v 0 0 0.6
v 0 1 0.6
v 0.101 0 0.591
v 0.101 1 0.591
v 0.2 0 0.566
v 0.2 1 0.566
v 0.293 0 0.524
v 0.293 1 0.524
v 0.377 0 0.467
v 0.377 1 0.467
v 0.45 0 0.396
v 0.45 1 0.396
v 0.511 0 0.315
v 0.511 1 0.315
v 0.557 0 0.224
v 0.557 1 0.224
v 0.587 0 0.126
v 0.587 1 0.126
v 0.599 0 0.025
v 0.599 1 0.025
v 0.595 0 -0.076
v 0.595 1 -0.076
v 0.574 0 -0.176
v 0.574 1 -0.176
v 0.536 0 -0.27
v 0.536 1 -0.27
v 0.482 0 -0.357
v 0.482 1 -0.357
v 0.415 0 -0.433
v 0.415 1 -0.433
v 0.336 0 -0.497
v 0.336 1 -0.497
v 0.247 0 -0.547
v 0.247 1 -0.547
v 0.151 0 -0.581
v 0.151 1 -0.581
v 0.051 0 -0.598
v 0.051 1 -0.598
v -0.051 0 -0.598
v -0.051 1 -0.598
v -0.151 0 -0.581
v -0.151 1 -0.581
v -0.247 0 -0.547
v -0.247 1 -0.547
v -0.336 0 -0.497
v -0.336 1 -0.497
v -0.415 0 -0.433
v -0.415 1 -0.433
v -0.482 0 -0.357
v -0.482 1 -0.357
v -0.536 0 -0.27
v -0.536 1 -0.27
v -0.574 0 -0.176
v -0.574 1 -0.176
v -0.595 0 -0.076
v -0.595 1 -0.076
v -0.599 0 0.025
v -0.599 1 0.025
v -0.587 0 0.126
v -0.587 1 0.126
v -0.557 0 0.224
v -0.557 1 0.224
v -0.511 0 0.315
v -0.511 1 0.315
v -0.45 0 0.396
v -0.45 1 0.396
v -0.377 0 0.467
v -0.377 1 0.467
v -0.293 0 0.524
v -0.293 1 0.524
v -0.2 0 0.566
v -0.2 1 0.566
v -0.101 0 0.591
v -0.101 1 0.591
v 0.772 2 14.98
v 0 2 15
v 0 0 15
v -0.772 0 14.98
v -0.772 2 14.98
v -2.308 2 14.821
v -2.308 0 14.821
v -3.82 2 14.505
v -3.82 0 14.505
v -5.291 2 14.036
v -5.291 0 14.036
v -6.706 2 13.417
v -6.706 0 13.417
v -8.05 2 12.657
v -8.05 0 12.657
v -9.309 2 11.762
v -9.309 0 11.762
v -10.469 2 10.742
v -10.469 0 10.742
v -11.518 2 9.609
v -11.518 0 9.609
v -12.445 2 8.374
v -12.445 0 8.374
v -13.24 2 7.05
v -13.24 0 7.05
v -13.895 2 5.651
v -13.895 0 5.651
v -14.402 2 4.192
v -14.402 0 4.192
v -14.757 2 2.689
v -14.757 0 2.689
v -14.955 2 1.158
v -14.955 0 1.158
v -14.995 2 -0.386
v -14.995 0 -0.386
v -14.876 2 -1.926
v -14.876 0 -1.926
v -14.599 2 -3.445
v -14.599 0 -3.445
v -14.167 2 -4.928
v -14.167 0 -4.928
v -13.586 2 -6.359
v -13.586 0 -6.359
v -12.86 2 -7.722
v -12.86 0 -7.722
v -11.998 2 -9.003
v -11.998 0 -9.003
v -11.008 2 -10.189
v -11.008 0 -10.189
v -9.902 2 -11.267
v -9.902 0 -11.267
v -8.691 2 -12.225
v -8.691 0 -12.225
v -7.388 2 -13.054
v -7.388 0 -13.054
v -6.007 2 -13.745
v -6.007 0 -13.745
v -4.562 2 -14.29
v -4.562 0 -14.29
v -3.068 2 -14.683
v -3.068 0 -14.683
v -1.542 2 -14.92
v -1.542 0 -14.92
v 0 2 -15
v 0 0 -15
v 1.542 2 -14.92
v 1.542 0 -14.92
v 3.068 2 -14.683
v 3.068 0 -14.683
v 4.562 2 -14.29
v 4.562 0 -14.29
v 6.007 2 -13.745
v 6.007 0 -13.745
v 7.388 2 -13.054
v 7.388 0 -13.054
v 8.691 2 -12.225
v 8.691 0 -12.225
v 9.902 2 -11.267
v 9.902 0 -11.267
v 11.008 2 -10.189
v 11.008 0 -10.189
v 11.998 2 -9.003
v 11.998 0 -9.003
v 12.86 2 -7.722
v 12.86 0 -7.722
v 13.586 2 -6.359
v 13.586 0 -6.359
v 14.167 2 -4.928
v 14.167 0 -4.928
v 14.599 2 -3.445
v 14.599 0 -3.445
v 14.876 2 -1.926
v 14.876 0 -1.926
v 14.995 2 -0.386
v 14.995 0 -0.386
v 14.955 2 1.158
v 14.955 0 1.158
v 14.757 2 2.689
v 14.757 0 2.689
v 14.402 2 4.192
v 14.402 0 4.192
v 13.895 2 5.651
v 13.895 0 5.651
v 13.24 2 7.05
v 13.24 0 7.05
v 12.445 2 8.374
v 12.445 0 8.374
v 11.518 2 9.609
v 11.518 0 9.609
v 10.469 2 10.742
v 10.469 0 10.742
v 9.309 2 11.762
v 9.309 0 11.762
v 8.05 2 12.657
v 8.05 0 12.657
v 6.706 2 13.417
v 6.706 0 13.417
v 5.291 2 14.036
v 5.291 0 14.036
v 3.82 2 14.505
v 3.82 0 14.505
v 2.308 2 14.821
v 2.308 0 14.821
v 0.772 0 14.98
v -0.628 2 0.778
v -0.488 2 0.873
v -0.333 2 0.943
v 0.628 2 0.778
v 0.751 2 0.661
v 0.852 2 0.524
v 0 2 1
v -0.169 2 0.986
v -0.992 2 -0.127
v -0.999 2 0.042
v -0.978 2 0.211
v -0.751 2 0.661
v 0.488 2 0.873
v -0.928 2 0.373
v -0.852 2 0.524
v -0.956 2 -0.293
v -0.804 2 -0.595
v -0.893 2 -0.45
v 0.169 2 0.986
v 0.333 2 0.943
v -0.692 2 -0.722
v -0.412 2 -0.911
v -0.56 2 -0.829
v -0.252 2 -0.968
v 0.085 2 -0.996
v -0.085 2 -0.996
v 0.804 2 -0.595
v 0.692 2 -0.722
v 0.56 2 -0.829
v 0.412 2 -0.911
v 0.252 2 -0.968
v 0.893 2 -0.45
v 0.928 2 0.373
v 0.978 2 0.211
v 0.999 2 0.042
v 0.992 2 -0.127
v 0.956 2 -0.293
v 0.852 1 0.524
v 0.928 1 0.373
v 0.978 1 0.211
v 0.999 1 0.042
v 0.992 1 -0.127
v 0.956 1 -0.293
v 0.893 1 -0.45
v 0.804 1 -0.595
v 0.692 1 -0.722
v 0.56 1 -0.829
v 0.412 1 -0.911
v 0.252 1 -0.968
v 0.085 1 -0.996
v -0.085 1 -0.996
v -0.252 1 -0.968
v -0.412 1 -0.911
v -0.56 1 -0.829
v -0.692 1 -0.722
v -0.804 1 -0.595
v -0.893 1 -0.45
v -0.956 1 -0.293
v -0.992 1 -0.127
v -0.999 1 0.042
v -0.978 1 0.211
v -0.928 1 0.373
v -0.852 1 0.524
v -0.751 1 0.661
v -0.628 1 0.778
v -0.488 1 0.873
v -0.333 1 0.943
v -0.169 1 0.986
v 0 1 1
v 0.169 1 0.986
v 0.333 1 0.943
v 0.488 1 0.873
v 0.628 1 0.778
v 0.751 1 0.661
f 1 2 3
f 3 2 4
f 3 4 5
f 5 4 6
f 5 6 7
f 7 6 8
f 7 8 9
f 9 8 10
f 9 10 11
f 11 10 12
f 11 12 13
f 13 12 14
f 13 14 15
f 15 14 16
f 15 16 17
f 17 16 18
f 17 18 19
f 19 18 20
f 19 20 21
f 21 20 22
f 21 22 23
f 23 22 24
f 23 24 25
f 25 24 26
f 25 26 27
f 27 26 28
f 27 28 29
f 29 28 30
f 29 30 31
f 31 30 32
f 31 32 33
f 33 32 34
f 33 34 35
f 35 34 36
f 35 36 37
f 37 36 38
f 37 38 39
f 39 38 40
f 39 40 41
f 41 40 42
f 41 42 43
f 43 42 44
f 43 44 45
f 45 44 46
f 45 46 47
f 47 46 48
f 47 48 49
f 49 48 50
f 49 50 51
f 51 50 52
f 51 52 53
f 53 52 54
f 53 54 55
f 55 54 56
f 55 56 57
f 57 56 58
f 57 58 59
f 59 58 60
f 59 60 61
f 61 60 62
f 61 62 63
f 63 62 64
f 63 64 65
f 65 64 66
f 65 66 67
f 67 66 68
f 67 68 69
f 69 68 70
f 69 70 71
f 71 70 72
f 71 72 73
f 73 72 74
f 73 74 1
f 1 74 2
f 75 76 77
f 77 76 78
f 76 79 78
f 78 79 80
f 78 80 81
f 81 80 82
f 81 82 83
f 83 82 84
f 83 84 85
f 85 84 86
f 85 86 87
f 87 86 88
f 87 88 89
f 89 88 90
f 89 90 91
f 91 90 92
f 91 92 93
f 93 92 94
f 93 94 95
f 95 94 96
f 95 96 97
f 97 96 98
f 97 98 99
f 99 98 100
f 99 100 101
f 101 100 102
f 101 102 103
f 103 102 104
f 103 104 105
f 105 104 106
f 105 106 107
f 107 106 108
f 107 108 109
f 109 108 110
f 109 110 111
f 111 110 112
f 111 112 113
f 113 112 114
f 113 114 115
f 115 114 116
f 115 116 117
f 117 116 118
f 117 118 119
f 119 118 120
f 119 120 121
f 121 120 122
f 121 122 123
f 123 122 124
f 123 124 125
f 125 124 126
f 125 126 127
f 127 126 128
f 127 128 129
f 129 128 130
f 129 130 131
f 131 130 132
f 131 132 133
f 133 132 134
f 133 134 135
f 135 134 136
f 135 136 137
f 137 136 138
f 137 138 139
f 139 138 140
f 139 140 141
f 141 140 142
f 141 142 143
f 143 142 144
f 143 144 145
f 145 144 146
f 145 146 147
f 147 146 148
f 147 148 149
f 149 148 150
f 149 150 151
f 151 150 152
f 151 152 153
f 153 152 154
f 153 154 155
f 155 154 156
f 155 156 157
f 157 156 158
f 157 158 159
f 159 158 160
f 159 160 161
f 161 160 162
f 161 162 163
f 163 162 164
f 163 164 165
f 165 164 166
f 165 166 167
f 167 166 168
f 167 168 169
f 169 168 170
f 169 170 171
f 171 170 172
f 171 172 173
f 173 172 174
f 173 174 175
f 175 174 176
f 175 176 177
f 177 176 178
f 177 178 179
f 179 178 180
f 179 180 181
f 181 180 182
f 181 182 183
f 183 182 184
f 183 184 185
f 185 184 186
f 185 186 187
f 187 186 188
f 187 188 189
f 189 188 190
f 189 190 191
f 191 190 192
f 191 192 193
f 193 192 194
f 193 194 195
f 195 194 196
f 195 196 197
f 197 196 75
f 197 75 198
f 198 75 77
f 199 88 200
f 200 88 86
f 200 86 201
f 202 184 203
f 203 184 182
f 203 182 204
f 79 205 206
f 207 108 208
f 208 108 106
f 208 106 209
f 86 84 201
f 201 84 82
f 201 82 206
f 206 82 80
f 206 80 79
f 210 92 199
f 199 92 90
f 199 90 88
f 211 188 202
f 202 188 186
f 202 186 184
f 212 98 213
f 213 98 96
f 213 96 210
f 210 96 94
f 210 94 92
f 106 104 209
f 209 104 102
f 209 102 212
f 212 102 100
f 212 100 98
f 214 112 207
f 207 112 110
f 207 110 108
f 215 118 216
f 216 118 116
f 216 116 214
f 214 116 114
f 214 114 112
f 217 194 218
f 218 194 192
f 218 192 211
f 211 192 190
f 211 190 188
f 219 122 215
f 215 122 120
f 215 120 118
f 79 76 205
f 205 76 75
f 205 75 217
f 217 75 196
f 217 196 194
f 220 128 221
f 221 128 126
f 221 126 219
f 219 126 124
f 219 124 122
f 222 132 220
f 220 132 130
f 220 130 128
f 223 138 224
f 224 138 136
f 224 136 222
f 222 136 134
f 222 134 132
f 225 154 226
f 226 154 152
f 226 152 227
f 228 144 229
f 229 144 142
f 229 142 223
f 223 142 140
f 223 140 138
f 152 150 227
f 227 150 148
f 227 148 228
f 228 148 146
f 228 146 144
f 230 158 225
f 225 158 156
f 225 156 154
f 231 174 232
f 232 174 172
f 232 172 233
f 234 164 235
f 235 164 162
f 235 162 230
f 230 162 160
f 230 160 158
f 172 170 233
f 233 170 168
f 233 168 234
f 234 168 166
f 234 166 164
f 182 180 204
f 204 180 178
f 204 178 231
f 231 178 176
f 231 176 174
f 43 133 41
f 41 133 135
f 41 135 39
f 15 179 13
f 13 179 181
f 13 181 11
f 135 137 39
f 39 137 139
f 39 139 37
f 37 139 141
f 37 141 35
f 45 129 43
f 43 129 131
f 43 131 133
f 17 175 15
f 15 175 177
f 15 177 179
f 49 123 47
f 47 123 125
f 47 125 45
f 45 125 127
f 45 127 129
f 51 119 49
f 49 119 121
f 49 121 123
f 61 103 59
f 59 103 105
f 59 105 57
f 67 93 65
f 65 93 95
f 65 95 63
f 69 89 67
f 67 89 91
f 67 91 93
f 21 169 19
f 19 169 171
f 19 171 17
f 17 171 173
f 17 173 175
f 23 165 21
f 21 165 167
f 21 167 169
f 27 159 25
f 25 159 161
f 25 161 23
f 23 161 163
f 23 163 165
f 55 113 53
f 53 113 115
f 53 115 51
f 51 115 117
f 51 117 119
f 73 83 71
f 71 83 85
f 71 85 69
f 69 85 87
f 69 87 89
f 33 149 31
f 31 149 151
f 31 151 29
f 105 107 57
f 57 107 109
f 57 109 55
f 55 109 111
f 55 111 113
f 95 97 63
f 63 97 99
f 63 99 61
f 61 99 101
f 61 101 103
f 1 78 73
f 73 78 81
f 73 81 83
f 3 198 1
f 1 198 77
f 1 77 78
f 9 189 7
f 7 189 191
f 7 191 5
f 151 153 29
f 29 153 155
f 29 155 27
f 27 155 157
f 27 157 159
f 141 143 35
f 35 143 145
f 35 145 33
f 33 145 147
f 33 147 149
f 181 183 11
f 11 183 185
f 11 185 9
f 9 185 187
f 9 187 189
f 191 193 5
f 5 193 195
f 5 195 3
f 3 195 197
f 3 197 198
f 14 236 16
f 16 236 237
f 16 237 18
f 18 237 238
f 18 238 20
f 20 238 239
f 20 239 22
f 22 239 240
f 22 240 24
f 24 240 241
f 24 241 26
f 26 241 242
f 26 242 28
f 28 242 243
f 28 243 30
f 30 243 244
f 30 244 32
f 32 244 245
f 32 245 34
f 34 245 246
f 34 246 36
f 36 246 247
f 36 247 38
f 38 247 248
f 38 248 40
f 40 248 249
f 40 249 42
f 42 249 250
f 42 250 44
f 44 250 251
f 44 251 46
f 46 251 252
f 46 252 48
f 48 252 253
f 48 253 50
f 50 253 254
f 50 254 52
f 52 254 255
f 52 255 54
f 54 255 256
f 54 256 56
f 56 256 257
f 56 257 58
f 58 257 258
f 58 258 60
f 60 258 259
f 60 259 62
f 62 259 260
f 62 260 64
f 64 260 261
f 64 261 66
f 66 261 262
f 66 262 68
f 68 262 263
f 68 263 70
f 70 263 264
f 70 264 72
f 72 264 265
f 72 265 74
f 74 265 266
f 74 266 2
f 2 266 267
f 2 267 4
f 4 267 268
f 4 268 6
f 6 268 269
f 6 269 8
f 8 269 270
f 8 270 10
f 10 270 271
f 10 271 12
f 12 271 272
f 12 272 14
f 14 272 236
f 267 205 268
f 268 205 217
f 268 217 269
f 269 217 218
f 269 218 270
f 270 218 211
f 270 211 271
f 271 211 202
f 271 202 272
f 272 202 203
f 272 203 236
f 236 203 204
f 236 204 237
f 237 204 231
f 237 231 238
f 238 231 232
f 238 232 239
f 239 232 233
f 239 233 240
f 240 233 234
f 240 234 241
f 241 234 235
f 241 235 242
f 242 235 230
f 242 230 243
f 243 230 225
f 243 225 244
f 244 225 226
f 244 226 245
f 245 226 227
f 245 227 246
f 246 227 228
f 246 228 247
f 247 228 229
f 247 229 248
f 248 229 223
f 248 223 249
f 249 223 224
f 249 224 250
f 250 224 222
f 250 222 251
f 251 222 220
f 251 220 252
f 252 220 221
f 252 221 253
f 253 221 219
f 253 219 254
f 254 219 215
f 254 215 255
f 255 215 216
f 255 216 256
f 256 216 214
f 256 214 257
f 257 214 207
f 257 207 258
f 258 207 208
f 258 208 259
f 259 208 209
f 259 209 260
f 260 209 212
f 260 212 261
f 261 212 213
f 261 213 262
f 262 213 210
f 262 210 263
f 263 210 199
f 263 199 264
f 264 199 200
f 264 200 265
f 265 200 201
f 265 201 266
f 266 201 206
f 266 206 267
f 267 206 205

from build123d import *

# Parameters (mm, degrees)
SKETCH_1_R          = 15
EXTRUDE_1_DEPTH     = 2
SKETCH_2_R          = 0.6
CUT_EXTRUDE_1_DEPTH = 22.307275753
SKETCH_2_3_R        = 1
CUT_EXTRUDE_2_DEPTH = 1


with BuildPart() as part:
    # 草图1 → 凸台-拉伸1 (new body)
    with BuildSketch(Plane(origin=(0, 0, 0), x_dir=(1, 0, 0), z_dir=(0, 1, 0))):
        Circle(SKETCH_1_R)
    extrude(amount=EXTRUDE_1_DEPTH)

    # 草图2 → 切除-拉伸1 (cut, through all)
    with BuildSketch(Plane(origin=(0, 2, 0), x_dir=(1, 0, 0), z_dir=(0, 1, 0))):
        Circle(SKETCH_2_R)
    extrude(amount=-CUT_EXTRUDE_1_DEPTH, mode=Mode.SUBTRACT)

    # 草图2<3> → 切除-拉伸2 (cut)
    with BuildSketch(Plane(origin=(0, 2, 0), x_dir=(1, 0, 0), z_dir=(0, 1, 0))):
        Circle(SKETCH_2_3_R)
    extrude(amount=-CUT_EXTRUDE_2_DEPTH, mode=Mode.SUBTRACT)


solid = part.part
